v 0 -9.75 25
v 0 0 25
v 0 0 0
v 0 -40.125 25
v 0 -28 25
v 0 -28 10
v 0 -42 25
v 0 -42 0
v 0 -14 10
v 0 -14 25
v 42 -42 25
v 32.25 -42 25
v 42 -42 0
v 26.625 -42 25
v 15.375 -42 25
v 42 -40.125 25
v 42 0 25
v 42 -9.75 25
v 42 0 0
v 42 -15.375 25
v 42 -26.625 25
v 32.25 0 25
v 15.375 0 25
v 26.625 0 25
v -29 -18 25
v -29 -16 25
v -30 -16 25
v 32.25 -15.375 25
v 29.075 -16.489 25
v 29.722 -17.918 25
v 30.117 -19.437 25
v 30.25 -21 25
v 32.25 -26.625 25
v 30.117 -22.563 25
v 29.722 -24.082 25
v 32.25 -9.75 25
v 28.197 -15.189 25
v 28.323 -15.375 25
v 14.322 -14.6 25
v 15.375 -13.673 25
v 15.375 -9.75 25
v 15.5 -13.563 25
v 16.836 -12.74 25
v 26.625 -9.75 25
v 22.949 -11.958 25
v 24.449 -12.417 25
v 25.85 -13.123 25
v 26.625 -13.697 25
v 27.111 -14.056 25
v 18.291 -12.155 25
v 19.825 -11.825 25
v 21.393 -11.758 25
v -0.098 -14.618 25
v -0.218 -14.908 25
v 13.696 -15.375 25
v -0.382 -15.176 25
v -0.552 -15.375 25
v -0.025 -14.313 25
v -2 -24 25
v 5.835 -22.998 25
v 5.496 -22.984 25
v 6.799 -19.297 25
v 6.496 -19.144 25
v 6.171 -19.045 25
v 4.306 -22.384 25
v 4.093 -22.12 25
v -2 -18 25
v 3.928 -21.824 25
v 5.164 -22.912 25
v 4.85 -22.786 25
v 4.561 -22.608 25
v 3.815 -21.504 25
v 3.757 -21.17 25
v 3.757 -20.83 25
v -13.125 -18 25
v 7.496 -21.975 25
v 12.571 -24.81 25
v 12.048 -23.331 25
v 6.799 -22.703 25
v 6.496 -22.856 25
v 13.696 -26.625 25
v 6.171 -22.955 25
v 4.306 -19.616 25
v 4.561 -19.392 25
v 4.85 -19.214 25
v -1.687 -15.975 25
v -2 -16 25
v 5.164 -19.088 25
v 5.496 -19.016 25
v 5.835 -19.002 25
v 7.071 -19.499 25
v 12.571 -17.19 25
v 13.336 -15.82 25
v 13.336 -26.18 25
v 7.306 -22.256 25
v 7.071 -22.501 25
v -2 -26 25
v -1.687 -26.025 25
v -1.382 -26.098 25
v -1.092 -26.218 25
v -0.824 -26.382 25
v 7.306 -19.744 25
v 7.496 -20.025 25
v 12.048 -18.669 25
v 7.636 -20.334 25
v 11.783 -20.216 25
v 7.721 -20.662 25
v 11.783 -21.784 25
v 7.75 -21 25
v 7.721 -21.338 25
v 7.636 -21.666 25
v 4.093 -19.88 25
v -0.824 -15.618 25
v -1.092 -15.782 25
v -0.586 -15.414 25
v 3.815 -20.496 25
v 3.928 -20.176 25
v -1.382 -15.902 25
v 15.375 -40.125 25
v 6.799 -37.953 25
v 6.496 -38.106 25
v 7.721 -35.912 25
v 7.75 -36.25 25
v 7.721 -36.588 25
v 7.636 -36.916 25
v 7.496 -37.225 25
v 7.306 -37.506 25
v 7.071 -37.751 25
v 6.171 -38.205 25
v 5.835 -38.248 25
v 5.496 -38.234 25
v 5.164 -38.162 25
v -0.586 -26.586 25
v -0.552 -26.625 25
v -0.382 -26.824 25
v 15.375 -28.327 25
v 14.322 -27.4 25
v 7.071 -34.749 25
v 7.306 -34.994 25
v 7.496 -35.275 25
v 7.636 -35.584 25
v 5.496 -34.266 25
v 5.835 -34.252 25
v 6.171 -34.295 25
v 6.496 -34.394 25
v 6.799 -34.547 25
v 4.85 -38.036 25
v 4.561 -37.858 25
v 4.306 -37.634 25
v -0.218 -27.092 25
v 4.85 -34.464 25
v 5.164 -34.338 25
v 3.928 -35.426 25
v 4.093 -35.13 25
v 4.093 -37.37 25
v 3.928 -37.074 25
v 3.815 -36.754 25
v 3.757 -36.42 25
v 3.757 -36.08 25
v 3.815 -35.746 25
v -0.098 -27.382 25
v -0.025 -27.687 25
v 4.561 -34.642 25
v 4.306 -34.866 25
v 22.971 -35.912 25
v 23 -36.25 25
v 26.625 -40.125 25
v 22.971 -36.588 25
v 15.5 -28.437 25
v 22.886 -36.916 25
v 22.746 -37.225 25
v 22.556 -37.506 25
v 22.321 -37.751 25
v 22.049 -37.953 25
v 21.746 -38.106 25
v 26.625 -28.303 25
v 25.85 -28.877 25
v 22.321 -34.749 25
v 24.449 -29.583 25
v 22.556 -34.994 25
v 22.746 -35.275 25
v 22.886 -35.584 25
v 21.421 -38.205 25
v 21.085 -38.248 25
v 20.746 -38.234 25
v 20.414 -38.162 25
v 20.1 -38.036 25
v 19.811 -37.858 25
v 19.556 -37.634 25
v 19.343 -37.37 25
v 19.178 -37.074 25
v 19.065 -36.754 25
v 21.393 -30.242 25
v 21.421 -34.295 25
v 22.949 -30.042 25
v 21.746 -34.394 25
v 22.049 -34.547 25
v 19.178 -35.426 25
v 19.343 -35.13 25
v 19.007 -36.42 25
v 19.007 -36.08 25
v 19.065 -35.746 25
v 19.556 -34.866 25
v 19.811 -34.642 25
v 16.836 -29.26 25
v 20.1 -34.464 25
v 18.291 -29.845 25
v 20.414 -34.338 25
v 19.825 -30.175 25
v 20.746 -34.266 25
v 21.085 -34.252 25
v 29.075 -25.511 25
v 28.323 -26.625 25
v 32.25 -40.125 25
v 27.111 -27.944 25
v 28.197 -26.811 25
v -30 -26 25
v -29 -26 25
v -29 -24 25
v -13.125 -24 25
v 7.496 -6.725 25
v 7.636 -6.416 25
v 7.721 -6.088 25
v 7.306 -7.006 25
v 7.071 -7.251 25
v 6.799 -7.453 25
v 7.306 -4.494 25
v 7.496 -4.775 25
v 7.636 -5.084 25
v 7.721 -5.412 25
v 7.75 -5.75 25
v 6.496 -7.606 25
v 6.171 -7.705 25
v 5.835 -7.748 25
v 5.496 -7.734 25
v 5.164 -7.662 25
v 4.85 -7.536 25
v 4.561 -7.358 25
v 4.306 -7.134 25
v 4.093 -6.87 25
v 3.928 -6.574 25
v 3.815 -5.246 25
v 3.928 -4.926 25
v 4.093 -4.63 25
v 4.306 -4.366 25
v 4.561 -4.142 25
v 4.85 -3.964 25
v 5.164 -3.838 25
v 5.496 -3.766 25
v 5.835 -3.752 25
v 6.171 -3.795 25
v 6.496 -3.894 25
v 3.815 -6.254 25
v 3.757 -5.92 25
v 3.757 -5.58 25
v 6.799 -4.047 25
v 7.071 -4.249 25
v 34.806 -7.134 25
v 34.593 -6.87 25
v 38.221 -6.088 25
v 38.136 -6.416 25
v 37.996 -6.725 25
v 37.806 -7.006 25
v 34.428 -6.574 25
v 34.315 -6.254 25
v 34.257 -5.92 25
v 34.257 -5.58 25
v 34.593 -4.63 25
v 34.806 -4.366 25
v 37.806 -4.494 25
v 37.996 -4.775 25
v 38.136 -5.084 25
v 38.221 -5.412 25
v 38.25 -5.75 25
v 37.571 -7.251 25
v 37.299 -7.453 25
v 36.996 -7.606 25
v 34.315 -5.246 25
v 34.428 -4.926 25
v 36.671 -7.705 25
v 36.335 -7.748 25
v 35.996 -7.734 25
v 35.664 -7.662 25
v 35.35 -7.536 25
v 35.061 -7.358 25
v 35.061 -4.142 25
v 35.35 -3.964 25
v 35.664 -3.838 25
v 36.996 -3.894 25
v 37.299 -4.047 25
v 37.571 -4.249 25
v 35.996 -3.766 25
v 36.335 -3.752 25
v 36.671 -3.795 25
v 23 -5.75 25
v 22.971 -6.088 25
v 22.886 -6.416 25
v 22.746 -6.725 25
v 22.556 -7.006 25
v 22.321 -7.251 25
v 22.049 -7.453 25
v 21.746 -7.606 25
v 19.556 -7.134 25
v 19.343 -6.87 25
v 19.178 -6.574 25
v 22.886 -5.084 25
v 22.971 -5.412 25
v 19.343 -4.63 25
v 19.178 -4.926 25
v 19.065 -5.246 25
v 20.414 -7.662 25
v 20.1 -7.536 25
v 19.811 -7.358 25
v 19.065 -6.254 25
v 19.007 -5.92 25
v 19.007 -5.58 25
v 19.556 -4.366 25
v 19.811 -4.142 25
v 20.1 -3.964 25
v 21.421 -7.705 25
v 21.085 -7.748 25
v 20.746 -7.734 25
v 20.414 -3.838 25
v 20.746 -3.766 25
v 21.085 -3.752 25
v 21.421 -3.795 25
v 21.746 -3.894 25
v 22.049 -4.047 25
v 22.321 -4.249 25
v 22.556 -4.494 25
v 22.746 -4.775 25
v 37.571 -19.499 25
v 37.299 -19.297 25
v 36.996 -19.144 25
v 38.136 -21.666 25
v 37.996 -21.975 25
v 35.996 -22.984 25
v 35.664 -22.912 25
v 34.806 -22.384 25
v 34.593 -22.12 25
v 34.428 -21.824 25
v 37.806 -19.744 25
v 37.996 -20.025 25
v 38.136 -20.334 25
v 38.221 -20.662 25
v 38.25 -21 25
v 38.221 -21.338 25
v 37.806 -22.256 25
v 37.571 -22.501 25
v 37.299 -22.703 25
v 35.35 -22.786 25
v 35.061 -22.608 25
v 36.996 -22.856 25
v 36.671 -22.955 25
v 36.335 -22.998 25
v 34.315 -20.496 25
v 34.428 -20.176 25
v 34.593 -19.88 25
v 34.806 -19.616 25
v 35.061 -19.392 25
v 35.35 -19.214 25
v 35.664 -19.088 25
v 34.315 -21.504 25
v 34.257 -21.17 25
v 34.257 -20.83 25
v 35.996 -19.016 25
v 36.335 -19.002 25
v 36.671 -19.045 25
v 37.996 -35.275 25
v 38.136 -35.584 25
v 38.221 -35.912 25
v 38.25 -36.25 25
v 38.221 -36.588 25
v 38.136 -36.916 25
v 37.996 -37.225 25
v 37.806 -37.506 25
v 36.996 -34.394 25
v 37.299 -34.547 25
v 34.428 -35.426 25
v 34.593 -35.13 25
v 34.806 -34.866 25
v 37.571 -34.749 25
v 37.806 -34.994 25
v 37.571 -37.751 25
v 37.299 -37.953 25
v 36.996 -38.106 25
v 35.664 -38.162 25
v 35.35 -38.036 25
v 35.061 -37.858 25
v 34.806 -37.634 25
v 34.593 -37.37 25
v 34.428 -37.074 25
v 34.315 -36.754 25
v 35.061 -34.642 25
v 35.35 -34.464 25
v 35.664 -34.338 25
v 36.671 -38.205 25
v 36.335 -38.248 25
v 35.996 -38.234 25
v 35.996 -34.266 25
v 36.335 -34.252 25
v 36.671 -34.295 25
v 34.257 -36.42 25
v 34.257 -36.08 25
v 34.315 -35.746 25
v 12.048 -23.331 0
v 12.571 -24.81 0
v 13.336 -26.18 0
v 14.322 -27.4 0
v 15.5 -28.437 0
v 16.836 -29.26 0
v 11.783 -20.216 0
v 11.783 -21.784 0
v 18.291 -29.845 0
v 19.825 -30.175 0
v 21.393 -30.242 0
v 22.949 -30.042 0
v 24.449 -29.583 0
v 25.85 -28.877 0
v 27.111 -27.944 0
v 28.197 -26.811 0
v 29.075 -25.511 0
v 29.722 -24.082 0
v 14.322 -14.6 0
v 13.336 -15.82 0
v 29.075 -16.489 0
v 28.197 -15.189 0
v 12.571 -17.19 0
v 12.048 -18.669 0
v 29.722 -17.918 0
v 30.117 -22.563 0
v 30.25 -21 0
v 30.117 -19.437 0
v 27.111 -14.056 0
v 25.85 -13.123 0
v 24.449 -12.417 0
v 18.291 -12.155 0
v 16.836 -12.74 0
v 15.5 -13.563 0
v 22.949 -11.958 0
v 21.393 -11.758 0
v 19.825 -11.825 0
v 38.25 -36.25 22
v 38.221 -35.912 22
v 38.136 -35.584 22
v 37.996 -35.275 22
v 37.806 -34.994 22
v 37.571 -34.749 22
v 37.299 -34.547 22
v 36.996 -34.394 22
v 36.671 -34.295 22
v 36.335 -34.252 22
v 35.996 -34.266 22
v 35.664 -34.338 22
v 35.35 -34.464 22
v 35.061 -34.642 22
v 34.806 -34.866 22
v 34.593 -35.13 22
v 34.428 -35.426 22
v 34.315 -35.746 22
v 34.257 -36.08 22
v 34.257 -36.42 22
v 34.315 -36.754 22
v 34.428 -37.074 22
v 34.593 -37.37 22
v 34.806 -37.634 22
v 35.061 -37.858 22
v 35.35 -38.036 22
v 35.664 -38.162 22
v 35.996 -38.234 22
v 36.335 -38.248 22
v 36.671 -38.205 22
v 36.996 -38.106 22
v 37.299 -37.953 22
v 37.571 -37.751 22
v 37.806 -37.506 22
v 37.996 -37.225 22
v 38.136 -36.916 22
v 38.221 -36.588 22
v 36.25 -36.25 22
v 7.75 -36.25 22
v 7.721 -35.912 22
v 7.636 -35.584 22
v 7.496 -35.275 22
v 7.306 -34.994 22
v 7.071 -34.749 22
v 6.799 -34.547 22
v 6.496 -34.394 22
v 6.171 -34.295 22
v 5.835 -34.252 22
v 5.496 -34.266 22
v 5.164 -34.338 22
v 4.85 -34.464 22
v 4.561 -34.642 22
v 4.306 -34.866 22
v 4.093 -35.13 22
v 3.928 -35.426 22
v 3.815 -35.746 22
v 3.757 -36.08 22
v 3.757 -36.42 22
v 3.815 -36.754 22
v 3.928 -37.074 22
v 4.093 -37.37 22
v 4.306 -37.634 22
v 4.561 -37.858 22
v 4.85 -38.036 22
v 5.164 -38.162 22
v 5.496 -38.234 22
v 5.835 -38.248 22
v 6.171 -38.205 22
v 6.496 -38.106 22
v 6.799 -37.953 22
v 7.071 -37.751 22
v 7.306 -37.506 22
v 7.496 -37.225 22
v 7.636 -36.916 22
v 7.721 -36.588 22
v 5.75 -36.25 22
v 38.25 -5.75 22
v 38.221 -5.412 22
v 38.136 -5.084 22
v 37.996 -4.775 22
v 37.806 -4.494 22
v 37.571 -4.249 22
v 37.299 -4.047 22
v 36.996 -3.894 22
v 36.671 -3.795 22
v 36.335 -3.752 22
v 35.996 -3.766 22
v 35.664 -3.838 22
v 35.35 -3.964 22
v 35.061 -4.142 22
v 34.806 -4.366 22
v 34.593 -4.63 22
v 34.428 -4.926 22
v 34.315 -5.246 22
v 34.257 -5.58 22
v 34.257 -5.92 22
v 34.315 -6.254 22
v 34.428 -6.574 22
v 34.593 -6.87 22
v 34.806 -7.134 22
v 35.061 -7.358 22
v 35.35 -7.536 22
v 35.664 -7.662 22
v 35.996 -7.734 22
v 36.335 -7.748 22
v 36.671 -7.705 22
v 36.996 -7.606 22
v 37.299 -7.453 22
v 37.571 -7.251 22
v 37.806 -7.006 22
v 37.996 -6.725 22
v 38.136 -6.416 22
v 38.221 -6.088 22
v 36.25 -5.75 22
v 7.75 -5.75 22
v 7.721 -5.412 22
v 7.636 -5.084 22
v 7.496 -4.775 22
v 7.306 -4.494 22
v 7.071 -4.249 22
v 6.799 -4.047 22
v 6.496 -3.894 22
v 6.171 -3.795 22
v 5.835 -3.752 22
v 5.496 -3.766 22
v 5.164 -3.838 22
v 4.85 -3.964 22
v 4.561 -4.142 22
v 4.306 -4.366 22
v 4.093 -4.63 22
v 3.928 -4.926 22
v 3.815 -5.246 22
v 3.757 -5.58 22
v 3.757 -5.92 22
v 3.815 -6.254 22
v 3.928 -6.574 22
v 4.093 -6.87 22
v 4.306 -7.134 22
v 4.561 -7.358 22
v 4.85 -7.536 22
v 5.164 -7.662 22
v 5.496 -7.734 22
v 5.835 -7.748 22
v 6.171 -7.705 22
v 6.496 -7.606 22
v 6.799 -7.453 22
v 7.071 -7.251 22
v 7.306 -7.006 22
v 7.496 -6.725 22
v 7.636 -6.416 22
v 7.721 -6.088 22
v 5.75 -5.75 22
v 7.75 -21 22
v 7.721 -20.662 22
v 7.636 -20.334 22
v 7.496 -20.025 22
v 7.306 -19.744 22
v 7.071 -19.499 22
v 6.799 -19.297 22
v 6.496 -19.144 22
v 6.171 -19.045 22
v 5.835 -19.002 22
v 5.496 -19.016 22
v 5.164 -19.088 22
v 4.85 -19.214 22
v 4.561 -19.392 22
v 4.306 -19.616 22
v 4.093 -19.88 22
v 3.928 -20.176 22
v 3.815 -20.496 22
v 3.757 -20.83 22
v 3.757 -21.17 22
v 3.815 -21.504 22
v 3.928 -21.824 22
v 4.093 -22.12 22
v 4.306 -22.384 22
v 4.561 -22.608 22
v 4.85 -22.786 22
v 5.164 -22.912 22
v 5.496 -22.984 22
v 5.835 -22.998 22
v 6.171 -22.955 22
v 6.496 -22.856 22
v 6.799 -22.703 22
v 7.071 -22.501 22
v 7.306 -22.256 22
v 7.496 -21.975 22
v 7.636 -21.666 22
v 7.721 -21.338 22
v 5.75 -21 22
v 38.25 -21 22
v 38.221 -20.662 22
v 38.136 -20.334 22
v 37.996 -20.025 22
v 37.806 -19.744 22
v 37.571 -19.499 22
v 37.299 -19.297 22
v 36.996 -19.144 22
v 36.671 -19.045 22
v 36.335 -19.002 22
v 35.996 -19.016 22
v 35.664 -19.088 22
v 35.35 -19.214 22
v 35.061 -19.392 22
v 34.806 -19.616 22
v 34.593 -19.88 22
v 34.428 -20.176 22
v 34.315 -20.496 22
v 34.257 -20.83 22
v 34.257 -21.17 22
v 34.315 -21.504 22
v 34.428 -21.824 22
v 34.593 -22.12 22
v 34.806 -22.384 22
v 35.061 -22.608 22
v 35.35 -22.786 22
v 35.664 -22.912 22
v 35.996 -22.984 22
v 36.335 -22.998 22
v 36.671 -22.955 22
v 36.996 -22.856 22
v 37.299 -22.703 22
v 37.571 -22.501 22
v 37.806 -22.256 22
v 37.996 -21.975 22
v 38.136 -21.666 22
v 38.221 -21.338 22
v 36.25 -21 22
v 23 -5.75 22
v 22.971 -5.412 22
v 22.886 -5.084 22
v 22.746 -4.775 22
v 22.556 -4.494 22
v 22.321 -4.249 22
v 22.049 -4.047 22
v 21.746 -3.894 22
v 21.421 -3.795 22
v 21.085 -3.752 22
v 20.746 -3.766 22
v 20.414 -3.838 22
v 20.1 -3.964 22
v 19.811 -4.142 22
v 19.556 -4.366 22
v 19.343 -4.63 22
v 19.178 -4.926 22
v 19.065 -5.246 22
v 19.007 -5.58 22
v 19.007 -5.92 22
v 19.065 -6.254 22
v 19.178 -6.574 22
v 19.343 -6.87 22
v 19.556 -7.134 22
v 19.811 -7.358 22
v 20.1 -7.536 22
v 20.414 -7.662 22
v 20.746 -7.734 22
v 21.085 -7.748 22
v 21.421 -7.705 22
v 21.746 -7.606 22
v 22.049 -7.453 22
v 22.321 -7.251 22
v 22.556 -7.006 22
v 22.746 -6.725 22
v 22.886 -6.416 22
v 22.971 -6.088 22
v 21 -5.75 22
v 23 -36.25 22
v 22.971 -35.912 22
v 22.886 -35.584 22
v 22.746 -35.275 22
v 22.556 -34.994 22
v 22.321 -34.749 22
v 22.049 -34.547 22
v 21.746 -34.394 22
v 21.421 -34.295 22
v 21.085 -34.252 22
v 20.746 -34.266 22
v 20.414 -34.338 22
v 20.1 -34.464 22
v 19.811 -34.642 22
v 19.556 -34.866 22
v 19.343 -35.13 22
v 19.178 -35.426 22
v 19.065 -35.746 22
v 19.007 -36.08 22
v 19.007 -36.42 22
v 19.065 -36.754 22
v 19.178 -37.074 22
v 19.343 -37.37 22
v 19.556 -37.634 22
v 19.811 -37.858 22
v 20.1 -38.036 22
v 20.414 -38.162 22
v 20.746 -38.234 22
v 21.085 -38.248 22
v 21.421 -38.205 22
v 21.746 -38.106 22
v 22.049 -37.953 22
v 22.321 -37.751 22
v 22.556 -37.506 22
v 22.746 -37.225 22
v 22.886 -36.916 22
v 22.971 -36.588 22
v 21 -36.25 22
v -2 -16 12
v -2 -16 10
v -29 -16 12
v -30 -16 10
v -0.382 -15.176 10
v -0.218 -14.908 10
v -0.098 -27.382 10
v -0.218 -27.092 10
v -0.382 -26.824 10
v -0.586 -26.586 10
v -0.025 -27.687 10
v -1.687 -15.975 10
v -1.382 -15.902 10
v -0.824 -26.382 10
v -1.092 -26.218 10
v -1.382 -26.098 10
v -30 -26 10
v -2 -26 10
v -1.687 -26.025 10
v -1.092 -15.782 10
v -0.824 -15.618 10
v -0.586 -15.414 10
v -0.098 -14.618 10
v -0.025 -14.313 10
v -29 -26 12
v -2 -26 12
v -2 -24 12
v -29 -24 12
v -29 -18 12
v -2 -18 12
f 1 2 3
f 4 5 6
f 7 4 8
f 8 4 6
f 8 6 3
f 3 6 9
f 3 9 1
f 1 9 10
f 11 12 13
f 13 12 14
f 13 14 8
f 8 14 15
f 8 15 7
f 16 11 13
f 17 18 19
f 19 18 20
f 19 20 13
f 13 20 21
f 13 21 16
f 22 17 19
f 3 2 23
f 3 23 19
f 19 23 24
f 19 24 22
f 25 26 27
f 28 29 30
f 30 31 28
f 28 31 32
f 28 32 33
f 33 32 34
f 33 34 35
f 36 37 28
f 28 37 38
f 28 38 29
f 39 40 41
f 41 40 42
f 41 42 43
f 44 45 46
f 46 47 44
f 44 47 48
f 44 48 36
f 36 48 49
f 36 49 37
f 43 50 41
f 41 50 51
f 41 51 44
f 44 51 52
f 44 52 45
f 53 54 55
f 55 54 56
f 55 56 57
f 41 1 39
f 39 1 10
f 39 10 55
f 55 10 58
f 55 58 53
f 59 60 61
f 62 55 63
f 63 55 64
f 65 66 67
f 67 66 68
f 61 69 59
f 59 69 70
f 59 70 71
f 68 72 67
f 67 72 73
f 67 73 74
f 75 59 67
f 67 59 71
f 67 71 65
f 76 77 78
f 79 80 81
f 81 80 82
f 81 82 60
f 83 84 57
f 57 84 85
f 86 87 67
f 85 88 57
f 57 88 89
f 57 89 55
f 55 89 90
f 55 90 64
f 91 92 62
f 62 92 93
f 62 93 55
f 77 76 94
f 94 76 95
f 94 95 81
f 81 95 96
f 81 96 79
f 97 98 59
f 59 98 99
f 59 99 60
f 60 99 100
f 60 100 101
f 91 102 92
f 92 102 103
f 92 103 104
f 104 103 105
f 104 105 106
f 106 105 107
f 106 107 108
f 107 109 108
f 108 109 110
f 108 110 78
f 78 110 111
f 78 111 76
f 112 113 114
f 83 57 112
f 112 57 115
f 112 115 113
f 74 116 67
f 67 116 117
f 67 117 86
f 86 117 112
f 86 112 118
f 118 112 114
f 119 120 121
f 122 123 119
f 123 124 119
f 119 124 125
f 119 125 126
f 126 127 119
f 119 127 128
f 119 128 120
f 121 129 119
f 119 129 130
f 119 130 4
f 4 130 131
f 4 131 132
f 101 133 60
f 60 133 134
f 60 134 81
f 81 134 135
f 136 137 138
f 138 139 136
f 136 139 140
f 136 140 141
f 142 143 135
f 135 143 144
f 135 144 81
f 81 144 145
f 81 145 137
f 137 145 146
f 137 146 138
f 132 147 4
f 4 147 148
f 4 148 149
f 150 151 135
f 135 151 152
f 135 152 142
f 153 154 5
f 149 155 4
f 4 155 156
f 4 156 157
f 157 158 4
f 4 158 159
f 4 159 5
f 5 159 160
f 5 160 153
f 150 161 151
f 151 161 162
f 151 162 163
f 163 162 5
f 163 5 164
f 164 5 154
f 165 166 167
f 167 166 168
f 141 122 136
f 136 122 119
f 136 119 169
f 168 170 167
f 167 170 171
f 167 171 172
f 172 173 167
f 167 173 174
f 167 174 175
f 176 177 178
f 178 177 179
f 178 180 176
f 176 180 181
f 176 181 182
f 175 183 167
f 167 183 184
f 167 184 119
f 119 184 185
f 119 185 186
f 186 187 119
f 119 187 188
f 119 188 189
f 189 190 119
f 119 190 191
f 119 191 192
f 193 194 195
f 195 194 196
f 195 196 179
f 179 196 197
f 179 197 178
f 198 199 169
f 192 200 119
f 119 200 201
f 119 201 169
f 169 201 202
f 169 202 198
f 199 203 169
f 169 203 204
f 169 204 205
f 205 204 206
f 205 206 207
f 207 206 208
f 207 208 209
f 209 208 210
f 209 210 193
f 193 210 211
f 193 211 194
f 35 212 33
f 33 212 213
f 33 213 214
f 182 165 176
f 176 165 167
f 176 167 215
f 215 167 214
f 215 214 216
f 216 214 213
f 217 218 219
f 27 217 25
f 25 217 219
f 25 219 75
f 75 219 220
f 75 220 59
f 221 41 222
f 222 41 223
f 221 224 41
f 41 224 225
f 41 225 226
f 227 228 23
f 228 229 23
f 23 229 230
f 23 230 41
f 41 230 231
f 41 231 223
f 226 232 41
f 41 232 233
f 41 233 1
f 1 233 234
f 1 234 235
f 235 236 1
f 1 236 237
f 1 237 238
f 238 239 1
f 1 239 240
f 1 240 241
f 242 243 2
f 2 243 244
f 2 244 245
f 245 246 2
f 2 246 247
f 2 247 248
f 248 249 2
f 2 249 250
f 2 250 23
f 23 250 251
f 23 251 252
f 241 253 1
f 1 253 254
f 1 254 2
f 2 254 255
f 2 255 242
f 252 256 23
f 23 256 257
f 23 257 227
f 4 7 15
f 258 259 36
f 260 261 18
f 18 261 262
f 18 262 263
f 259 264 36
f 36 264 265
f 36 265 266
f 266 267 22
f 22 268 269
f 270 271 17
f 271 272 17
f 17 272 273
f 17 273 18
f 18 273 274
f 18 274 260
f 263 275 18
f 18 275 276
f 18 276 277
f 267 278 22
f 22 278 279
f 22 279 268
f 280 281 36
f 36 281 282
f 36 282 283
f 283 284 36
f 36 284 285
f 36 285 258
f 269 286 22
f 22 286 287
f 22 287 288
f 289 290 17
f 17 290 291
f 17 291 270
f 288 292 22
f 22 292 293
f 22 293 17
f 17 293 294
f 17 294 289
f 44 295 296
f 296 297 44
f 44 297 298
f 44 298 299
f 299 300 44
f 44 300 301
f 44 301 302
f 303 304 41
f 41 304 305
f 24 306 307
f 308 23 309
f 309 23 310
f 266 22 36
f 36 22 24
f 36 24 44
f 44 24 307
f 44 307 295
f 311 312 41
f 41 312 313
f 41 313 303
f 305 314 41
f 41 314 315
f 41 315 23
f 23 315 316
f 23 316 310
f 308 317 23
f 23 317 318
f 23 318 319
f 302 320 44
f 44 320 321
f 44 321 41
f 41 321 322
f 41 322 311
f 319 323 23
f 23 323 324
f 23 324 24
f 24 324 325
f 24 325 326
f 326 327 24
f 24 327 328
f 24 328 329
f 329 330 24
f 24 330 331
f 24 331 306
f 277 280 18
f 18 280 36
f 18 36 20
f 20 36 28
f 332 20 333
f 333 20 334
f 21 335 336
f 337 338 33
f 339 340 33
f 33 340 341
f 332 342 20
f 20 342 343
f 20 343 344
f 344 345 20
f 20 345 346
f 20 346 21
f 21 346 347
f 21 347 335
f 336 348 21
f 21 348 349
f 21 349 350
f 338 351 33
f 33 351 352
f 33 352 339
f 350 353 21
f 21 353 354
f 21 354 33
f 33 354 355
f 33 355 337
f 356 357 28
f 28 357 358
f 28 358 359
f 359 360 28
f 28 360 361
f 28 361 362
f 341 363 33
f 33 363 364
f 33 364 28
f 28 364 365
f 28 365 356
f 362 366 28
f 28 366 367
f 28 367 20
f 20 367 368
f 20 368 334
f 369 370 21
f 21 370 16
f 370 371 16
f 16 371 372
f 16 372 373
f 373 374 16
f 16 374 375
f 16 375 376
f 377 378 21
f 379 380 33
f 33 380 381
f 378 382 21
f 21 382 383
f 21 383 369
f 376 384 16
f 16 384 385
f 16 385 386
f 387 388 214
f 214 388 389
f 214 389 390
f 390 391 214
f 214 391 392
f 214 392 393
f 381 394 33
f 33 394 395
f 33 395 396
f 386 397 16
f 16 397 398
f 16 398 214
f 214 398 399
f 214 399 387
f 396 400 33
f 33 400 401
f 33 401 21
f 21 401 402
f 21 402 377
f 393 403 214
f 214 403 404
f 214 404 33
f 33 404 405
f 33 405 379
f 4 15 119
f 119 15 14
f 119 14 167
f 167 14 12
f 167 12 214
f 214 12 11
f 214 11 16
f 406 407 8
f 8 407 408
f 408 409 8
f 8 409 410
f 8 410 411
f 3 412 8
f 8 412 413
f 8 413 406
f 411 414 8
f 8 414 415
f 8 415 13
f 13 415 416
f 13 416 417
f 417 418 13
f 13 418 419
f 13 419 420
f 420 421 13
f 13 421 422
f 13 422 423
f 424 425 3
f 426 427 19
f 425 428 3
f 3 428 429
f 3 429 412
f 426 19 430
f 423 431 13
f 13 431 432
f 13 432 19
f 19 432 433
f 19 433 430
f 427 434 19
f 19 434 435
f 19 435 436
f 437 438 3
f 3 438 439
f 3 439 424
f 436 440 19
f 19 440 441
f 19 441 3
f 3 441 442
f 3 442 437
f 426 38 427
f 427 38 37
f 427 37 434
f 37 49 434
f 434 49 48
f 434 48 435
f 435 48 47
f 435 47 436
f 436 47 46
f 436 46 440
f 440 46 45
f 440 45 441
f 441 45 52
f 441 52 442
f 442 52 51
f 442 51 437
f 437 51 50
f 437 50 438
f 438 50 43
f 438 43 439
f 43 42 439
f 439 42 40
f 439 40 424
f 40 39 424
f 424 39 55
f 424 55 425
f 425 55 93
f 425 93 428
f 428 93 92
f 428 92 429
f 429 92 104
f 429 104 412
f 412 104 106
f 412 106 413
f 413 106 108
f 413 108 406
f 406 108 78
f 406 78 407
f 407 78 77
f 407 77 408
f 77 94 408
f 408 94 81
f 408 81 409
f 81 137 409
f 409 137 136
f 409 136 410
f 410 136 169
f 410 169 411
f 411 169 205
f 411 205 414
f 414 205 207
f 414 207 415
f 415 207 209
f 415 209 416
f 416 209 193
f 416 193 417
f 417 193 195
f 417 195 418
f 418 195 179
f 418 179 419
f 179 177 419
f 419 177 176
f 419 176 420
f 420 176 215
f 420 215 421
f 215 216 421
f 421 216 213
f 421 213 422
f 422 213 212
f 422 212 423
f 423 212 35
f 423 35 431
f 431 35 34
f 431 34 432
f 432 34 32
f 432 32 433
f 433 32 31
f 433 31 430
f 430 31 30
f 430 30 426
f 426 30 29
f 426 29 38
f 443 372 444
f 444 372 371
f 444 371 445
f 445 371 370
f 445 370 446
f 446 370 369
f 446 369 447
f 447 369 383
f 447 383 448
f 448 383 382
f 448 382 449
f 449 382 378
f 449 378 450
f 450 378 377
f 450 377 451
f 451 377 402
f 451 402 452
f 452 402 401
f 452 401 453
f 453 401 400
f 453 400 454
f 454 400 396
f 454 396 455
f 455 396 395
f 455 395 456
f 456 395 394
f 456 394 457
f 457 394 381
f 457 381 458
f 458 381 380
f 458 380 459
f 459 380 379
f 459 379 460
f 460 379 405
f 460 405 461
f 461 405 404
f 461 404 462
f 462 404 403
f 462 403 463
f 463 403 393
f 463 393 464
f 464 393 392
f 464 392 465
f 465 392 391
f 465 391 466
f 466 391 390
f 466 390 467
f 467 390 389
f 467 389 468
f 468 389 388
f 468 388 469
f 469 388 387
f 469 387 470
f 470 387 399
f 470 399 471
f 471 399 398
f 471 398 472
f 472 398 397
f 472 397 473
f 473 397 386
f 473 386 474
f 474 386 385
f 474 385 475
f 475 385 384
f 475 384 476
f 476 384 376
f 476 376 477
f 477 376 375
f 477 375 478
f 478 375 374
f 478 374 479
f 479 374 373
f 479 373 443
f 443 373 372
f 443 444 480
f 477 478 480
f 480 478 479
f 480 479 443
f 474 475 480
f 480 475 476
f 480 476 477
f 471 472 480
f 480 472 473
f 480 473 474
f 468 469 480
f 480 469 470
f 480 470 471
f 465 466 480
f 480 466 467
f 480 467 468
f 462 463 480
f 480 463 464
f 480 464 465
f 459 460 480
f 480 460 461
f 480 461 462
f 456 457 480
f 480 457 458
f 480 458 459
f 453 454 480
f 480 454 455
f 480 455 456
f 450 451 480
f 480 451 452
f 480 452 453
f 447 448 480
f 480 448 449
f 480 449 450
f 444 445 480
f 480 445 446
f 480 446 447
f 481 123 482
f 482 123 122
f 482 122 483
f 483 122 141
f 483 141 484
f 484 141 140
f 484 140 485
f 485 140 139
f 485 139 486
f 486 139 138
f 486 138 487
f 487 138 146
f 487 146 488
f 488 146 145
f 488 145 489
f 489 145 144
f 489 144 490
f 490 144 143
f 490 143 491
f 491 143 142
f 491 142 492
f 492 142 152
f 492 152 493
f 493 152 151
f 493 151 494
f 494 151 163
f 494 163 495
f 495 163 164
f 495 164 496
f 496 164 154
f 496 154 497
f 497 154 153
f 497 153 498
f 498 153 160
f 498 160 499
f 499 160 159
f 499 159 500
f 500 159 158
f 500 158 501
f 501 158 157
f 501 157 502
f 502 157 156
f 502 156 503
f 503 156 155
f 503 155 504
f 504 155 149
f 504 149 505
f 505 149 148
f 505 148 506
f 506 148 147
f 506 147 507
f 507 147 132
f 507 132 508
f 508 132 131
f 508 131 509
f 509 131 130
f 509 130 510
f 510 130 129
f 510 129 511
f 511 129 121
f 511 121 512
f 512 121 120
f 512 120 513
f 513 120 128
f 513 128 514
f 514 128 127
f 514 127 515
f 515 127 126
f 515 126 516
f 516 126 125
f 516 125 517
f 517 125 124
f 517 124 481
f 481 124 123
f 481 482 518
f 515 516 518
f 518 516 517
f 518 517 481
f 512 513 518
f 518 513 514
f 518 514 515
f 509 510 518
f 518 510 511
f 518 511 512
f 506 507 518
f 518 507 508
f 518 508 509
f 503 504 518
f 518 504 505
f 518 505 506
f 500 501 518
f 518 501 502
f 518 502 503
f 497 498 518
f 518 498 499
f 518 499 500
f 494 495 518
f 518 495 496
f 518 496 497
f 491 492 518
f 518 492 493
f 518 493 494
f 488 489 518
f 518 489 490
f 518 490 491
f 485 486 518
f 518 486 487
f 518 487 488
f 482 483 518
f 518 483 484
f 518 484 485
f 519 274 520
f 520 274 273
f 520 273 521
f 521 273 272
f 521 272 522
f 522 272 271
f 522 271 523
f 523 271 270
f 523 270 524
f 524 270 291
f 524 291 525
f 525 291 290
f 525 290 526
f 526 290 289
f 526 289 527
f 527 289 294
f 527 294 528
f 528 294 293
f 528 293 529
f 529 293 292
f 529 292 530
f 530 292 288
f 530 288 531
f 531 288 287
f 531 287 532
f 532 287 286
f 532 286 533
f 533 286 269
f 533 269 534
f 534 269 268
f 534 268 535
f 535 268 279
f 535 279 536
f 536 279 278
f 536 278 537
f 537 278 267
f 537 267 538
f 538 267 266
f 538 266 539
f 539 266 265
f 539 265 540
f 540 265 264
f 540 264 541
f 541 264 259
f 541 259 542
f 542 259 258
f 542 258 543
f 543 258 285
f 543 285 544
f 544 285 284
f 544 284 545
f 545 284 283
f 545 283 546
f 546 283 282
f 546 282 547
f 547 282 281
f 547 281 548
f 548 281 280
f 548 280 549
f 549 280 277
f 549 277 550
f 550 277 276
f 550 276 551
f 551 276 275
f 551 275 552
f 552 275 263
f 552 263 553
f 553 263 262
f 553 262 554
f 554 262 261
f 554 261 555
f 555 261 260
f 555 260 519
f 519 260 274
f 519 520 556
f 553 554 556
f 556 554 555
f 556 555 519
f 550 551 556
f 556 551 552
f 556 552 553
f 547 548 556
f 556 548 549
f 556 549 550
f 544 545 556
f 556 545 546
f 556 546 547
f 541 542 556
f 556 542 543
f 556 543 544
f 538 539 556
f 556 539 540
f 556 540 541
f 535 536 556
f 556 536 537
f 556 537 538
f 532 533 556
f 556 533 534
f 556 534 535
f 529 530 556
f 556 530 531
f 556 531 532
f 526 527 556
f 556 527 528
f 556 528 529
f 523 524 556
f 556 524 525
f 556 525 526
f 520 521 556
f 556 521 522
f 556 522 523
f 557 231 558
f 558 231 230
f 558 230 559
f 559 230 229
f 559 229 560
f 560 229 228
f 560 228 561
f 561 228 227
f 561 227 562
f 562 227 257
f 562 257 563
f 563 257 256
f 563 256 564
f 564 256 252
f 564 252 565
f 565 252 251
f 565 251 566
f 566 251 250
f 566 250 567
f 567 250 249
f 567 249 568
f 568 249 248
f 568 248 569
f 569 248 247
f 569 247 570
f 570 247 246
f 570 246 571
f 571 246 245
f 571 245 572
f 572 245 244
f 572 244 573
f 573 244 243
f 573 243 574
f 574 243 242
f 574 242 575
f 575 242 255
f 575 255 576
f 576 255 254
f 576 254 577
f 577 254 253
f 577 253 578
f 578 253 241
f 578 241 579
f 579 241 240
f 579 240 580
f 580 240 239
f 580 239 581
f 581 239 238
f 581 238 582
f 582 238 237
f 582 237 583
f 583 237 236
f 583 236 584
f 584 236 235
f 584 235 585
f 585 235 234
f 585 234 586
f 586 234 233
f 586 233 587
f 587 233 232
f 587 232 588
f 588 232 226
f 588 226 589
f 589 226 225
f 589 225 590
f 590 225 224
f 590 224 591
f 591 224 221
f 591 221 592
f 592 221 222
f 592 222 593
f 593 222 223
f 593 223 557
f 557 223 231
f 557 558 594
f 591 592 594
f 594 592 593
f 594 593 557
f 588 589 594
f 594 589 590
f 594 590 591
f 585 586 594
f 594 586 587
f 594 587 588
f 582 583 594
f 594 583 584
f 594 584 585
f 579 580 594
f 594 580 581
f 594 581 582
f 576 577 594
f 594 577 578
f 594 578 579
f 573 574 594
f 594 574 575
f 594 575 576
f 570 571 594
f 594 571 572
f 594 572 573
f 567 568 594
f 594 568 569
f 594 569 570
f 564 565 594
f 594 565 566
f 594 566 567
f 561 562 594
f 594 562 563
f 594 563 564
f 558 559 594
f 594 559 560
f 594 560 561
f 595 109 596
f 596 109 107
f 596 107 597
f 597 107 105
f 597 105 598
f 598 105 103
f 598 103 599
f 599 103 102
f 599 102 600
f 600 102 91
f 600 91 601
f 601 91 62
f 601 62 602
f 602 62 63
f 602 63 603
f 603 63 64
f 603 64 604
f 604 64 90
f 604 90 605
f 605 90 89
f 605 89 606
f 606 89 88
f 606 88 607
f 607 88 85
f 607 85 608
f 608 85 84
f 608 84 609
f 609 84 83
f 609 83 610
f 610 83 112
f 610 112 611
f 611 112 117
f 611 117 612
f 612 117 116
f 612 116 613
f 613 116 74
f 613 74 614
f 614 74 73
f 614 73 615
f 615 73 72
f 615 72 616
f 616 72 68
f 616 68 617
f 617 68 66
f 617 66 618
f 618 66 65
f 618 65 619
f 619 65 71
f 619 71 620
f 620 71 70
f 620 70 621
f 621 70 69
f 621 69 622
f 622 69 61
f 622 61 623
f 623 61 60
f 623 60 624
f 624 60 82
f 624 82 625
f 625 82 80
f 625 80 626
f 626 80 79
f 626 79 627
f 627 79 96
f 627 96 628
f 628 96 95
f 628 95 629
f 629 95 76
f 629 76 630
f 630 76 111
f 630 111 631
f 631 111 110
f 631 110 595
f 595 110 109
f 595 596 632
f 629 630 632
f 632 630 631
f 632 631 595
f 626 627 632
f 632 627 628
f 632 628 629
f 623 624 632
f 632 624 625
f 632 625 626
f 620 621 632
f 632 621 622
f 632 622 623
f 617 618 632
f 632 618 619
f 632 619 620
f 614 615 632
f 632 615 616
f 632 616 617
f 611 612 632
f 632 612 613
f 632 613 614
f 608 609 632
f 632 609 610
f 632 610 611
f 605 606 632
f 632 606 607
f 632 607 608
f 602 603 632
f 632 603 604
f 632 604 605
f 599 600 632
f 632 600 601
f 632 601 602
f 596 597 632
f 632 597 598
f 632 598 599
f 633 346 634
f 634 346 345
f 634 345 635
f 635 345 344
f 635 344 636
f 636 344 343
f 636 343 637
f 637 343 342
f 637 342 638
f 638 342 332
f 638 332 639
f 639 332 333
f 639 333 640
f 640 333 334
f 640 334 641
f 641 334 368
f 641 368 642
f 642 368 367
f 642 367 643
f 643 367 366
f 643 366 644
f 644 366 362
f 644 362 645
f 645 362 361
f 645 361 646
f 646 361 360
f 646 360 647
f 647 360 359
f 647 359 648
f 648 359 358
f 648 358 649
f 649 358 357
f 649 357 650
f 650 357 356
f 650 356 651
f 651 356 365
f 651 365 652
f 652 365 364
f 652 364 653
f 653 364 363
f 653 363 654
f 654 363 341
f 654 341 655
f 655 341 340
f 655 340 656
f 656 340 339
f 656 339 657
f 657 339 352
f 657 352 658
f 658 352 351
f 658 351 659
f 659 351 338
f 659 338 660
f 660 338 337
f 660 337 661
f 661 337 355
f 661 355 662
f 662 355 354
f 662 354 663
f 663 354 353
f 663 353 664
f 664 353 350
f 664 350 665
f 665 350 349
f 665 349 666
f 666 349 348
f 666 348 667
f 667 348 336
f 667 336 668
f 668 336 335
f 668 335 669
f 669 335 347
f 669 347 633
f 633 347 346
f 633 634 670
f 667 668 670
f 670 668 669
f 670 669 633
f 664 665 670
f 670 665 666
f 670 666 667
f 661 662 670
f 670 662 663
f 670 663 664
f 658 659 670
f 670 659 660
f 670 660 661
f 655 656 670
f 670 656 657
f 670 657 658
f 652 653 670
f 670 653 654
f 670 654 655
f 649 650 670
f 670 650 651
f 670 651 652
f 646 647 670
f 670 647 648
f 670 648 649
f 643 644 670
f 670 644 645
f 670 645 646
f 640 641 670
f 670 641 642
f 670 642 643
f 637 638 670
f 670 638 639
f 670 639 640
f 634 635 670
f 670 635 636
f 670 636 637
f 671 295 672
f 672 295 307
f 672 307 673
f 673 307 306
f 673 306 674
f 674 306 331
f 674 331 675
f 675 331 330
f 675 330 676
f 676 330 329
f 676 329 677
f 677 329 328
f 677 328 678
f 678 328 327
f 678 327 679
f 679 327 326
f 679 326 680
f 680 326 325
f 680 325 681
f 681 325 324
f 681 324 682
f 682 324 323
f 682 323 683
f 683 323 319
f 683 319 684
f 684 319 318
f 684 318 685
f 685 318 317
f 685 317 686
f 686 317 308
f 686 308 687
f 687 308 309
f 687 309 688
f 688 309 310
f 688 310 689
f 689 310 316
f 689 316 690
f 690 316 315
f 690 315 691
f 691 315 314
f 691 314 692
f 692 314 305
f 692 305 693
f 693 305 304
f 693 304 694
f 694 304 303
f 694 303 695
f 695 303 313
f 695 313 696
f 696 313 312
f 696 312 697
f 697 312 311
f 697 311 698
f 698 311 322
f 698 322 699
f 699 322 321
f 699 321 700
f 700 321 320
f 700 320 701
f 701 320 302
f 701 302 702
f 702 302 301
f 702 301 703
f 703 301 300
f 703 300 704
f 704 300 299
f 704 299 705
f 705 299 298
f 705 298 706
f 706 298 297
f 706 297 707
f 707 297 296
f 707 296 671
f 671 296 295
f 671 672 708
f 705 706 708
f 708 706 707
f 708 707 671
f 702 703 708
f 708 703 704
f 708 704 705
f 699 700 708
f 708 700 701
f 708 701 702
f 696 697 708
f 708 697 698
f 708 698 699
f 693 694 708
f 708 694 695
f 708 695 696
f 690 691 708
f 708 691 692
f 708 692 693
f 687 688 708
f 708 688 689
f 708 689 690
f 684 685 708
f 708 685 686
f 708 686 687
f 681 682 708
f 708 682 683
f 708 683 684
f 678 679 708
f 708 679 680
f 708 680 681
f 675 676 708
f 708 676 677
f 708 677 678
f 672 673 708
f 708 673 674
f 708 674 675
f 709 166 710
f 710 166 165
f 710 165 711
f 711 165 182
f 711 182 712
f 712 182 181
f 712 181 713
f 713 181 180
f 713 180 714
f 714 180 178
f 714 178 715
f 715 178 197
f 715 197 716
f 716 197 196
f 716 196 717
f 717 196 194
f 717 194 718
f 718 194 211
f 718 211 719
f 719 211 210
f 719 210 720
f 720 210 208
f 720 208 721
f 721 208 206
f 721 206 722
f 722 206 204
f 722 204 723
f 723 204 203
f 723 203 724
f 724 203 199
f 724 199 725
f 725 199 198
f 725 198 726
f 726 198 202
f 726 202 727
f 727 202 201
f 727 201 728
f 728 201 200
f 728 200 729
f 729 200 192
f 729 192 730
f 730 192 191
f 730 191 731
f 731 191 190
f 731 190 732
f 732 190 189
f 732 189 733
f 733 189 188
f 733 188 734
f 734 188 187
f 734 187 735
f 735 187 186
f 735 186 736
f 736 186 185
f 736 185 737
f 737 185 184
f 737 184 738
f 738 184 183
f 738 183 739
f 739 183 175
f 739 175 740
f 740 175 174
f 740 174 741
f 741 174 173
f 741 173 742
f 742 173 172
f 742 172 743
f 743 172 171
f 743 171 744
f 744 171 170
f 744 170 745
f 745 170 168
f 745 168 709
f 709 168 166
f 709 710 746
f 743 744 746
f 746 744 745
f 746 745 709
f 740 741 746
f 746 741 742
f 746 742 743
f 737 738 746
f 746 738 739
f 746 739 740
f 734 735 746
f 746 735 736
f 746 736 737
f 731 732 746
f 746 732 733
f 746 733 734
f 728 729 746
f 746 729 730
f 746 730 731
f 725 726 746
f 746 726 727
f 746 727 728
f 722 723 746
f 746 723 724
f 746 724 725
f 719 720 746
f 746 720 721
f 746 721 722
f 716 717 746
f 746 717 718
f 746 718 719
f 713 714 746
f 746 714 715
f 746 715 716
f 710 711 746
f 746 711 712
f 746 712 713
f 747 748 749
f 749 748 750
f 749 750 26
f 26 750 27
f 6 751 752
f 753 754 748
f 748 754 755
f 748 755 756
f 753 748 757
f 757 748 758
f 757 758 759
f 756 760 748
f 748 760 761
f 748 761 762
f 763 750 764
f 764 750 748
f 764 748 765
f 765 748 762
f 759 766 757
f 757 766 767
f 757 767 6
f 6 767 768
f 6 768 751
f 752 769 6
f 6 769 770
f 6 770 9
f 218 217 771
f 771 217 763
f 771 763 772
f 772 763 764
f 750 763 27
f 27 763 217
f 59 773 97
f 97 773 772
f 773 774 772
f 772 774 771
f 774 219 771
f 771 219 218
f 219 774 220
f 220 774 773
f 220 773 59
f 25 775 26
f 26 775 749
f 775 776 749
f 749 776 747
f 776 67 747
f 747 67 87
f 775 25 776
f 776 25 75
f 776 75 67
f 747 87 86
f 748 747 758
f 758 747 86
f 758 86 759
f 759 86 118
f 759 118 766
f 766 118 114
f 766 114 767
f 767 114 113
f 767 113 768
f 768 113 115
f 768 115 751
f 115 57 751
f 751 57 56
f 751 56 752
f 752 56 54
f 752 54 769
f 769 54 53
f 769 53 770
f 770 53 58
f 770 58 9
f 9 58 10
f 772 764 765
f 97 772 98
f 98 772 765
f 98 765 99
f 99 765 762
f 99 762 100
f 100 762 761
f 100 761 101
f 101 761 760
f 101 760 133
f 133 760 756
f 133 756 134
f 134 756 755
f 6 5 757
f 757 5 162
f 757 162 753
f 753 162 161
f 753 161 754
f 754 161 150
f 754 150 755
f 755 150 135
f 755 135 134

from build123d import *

# Parameters (mm, degrees)
SKETCH_1_W          = 42
SKETCH_1_H          = 42
EXTRUDE_1_DEPTH     = 25
SKETCH_2_R          = 9.25
CUT_EXTRUDE_1_DEPTH = 65.443773943
SKETCH_3_R          = 2
CUT_EXTRUDE_2_DEPTH = 3
EXTRUDE_2_DEPTH     = 30
SKETCH_5_W          = 27
SKETCH_5_H          = 13
CUT_EXTRUDE_3_DEPTH = 2
SKETCH_6_W          = 27
SKETCH_6_H          = 13
CUT_EXTRUDE_4_DEPTH = 2
FILLET_1_R          = 2


with BuildPart() as part:
    # 스케치1 → 보스-돌출1 (new body)
    with BuildSketch(Plane.XY):
        with Locations((21, -21)):
            Rectangle(SKETCH_1_W, SKETCH_1_H)
    extrude(amount=EXTRUDE_1_DEPTH)

    # 스케치2 → 컷-돌출1 (cut, through all)
    with BuildSketch(Plane.XY.offset(25)):
        with Locations((21, -21)):
            Circle(SKETCH_2_R)
    extrude(amount=-CUT_EXTRUDE_1_DEPTH, mode=Mode.SUBTRACT)

    # 스케치3 → 컷-돌출2 (cut)
    with BuildSketch(Plane.XY.offset(25)):
        with Locations((36.25, -36.25)):
            Circle(SKETCH_3_R)
        with Locations((5.75, -36.25)):
            Circle(SKETCH_3_R)
        with Locations((36.25, -5.75)):
            Circle(SKETCH_3_R)
        with Locations((5.75, -5.75)):
            Circle(SKETCH_3_R)
        with Locations((36.25, -21)):
            Circle(SKETCH_3_R)
        with Locations((21, -5.75)):
            Circle(SKETCH_3_R)
        with Locations((21, -36.25)):
            Circle(SKETCH_3_R)
        with Locations((5.75, -21)):
            Circle(SKETCH_3_R)
    extrude(amount=-CUT_EXTRUDE_2_DEPTH, mode=Mode.SUBTRACT)

    # 스케치4 → 보스-돌출2 (add)
    with BuildSketch(Plane.ZY):
        Polygon((25, -21), (25, -26), (10, -26), (10, -16), (25, -16), align=None)
    extrude(amount=EXTRUDE_2_DEPTH)

    # 스케치5 → 컷-돌출3 (cut)
    with BuildSketch(Plane(origin=(0, -26, 0), x_dir=(-1, 0, 0), z_dir=(0, -1, 0))):
        with Locations((15.5, -18.5)):
            Rectangle(SKETCH_5_W, SKETCH_5_H)
    extrude(amount=-CUT_EXTRUDE_3_DEPTH, mode=Mode.SUBTRACT)

    # 스케치6 → 컷-돌출4 (cut)
    with BuildSketch(Plane(origin=(0, -16, 0), x_dir=(1, 0, 0), z_dir=(0, 1, 0))):
        with Locations((-15.5, -18.5)):
            Rectangle(SKETCH_6_W, SKETCH_6_H)
    extrude(amount=-CUT_EXTRUDE_4_DEPTH, mode=Mode.SUBTRACT)

    # 필렛1
    fillet_1_edges = [part.edges().sort_by_distance(p)[0] for p in [
        (0, -16, 17.5),
        (0, -26, 17.5),
    ]]
    fillet(fillet_1_edges, radius=FILLET_1_R)


solid = part.part
